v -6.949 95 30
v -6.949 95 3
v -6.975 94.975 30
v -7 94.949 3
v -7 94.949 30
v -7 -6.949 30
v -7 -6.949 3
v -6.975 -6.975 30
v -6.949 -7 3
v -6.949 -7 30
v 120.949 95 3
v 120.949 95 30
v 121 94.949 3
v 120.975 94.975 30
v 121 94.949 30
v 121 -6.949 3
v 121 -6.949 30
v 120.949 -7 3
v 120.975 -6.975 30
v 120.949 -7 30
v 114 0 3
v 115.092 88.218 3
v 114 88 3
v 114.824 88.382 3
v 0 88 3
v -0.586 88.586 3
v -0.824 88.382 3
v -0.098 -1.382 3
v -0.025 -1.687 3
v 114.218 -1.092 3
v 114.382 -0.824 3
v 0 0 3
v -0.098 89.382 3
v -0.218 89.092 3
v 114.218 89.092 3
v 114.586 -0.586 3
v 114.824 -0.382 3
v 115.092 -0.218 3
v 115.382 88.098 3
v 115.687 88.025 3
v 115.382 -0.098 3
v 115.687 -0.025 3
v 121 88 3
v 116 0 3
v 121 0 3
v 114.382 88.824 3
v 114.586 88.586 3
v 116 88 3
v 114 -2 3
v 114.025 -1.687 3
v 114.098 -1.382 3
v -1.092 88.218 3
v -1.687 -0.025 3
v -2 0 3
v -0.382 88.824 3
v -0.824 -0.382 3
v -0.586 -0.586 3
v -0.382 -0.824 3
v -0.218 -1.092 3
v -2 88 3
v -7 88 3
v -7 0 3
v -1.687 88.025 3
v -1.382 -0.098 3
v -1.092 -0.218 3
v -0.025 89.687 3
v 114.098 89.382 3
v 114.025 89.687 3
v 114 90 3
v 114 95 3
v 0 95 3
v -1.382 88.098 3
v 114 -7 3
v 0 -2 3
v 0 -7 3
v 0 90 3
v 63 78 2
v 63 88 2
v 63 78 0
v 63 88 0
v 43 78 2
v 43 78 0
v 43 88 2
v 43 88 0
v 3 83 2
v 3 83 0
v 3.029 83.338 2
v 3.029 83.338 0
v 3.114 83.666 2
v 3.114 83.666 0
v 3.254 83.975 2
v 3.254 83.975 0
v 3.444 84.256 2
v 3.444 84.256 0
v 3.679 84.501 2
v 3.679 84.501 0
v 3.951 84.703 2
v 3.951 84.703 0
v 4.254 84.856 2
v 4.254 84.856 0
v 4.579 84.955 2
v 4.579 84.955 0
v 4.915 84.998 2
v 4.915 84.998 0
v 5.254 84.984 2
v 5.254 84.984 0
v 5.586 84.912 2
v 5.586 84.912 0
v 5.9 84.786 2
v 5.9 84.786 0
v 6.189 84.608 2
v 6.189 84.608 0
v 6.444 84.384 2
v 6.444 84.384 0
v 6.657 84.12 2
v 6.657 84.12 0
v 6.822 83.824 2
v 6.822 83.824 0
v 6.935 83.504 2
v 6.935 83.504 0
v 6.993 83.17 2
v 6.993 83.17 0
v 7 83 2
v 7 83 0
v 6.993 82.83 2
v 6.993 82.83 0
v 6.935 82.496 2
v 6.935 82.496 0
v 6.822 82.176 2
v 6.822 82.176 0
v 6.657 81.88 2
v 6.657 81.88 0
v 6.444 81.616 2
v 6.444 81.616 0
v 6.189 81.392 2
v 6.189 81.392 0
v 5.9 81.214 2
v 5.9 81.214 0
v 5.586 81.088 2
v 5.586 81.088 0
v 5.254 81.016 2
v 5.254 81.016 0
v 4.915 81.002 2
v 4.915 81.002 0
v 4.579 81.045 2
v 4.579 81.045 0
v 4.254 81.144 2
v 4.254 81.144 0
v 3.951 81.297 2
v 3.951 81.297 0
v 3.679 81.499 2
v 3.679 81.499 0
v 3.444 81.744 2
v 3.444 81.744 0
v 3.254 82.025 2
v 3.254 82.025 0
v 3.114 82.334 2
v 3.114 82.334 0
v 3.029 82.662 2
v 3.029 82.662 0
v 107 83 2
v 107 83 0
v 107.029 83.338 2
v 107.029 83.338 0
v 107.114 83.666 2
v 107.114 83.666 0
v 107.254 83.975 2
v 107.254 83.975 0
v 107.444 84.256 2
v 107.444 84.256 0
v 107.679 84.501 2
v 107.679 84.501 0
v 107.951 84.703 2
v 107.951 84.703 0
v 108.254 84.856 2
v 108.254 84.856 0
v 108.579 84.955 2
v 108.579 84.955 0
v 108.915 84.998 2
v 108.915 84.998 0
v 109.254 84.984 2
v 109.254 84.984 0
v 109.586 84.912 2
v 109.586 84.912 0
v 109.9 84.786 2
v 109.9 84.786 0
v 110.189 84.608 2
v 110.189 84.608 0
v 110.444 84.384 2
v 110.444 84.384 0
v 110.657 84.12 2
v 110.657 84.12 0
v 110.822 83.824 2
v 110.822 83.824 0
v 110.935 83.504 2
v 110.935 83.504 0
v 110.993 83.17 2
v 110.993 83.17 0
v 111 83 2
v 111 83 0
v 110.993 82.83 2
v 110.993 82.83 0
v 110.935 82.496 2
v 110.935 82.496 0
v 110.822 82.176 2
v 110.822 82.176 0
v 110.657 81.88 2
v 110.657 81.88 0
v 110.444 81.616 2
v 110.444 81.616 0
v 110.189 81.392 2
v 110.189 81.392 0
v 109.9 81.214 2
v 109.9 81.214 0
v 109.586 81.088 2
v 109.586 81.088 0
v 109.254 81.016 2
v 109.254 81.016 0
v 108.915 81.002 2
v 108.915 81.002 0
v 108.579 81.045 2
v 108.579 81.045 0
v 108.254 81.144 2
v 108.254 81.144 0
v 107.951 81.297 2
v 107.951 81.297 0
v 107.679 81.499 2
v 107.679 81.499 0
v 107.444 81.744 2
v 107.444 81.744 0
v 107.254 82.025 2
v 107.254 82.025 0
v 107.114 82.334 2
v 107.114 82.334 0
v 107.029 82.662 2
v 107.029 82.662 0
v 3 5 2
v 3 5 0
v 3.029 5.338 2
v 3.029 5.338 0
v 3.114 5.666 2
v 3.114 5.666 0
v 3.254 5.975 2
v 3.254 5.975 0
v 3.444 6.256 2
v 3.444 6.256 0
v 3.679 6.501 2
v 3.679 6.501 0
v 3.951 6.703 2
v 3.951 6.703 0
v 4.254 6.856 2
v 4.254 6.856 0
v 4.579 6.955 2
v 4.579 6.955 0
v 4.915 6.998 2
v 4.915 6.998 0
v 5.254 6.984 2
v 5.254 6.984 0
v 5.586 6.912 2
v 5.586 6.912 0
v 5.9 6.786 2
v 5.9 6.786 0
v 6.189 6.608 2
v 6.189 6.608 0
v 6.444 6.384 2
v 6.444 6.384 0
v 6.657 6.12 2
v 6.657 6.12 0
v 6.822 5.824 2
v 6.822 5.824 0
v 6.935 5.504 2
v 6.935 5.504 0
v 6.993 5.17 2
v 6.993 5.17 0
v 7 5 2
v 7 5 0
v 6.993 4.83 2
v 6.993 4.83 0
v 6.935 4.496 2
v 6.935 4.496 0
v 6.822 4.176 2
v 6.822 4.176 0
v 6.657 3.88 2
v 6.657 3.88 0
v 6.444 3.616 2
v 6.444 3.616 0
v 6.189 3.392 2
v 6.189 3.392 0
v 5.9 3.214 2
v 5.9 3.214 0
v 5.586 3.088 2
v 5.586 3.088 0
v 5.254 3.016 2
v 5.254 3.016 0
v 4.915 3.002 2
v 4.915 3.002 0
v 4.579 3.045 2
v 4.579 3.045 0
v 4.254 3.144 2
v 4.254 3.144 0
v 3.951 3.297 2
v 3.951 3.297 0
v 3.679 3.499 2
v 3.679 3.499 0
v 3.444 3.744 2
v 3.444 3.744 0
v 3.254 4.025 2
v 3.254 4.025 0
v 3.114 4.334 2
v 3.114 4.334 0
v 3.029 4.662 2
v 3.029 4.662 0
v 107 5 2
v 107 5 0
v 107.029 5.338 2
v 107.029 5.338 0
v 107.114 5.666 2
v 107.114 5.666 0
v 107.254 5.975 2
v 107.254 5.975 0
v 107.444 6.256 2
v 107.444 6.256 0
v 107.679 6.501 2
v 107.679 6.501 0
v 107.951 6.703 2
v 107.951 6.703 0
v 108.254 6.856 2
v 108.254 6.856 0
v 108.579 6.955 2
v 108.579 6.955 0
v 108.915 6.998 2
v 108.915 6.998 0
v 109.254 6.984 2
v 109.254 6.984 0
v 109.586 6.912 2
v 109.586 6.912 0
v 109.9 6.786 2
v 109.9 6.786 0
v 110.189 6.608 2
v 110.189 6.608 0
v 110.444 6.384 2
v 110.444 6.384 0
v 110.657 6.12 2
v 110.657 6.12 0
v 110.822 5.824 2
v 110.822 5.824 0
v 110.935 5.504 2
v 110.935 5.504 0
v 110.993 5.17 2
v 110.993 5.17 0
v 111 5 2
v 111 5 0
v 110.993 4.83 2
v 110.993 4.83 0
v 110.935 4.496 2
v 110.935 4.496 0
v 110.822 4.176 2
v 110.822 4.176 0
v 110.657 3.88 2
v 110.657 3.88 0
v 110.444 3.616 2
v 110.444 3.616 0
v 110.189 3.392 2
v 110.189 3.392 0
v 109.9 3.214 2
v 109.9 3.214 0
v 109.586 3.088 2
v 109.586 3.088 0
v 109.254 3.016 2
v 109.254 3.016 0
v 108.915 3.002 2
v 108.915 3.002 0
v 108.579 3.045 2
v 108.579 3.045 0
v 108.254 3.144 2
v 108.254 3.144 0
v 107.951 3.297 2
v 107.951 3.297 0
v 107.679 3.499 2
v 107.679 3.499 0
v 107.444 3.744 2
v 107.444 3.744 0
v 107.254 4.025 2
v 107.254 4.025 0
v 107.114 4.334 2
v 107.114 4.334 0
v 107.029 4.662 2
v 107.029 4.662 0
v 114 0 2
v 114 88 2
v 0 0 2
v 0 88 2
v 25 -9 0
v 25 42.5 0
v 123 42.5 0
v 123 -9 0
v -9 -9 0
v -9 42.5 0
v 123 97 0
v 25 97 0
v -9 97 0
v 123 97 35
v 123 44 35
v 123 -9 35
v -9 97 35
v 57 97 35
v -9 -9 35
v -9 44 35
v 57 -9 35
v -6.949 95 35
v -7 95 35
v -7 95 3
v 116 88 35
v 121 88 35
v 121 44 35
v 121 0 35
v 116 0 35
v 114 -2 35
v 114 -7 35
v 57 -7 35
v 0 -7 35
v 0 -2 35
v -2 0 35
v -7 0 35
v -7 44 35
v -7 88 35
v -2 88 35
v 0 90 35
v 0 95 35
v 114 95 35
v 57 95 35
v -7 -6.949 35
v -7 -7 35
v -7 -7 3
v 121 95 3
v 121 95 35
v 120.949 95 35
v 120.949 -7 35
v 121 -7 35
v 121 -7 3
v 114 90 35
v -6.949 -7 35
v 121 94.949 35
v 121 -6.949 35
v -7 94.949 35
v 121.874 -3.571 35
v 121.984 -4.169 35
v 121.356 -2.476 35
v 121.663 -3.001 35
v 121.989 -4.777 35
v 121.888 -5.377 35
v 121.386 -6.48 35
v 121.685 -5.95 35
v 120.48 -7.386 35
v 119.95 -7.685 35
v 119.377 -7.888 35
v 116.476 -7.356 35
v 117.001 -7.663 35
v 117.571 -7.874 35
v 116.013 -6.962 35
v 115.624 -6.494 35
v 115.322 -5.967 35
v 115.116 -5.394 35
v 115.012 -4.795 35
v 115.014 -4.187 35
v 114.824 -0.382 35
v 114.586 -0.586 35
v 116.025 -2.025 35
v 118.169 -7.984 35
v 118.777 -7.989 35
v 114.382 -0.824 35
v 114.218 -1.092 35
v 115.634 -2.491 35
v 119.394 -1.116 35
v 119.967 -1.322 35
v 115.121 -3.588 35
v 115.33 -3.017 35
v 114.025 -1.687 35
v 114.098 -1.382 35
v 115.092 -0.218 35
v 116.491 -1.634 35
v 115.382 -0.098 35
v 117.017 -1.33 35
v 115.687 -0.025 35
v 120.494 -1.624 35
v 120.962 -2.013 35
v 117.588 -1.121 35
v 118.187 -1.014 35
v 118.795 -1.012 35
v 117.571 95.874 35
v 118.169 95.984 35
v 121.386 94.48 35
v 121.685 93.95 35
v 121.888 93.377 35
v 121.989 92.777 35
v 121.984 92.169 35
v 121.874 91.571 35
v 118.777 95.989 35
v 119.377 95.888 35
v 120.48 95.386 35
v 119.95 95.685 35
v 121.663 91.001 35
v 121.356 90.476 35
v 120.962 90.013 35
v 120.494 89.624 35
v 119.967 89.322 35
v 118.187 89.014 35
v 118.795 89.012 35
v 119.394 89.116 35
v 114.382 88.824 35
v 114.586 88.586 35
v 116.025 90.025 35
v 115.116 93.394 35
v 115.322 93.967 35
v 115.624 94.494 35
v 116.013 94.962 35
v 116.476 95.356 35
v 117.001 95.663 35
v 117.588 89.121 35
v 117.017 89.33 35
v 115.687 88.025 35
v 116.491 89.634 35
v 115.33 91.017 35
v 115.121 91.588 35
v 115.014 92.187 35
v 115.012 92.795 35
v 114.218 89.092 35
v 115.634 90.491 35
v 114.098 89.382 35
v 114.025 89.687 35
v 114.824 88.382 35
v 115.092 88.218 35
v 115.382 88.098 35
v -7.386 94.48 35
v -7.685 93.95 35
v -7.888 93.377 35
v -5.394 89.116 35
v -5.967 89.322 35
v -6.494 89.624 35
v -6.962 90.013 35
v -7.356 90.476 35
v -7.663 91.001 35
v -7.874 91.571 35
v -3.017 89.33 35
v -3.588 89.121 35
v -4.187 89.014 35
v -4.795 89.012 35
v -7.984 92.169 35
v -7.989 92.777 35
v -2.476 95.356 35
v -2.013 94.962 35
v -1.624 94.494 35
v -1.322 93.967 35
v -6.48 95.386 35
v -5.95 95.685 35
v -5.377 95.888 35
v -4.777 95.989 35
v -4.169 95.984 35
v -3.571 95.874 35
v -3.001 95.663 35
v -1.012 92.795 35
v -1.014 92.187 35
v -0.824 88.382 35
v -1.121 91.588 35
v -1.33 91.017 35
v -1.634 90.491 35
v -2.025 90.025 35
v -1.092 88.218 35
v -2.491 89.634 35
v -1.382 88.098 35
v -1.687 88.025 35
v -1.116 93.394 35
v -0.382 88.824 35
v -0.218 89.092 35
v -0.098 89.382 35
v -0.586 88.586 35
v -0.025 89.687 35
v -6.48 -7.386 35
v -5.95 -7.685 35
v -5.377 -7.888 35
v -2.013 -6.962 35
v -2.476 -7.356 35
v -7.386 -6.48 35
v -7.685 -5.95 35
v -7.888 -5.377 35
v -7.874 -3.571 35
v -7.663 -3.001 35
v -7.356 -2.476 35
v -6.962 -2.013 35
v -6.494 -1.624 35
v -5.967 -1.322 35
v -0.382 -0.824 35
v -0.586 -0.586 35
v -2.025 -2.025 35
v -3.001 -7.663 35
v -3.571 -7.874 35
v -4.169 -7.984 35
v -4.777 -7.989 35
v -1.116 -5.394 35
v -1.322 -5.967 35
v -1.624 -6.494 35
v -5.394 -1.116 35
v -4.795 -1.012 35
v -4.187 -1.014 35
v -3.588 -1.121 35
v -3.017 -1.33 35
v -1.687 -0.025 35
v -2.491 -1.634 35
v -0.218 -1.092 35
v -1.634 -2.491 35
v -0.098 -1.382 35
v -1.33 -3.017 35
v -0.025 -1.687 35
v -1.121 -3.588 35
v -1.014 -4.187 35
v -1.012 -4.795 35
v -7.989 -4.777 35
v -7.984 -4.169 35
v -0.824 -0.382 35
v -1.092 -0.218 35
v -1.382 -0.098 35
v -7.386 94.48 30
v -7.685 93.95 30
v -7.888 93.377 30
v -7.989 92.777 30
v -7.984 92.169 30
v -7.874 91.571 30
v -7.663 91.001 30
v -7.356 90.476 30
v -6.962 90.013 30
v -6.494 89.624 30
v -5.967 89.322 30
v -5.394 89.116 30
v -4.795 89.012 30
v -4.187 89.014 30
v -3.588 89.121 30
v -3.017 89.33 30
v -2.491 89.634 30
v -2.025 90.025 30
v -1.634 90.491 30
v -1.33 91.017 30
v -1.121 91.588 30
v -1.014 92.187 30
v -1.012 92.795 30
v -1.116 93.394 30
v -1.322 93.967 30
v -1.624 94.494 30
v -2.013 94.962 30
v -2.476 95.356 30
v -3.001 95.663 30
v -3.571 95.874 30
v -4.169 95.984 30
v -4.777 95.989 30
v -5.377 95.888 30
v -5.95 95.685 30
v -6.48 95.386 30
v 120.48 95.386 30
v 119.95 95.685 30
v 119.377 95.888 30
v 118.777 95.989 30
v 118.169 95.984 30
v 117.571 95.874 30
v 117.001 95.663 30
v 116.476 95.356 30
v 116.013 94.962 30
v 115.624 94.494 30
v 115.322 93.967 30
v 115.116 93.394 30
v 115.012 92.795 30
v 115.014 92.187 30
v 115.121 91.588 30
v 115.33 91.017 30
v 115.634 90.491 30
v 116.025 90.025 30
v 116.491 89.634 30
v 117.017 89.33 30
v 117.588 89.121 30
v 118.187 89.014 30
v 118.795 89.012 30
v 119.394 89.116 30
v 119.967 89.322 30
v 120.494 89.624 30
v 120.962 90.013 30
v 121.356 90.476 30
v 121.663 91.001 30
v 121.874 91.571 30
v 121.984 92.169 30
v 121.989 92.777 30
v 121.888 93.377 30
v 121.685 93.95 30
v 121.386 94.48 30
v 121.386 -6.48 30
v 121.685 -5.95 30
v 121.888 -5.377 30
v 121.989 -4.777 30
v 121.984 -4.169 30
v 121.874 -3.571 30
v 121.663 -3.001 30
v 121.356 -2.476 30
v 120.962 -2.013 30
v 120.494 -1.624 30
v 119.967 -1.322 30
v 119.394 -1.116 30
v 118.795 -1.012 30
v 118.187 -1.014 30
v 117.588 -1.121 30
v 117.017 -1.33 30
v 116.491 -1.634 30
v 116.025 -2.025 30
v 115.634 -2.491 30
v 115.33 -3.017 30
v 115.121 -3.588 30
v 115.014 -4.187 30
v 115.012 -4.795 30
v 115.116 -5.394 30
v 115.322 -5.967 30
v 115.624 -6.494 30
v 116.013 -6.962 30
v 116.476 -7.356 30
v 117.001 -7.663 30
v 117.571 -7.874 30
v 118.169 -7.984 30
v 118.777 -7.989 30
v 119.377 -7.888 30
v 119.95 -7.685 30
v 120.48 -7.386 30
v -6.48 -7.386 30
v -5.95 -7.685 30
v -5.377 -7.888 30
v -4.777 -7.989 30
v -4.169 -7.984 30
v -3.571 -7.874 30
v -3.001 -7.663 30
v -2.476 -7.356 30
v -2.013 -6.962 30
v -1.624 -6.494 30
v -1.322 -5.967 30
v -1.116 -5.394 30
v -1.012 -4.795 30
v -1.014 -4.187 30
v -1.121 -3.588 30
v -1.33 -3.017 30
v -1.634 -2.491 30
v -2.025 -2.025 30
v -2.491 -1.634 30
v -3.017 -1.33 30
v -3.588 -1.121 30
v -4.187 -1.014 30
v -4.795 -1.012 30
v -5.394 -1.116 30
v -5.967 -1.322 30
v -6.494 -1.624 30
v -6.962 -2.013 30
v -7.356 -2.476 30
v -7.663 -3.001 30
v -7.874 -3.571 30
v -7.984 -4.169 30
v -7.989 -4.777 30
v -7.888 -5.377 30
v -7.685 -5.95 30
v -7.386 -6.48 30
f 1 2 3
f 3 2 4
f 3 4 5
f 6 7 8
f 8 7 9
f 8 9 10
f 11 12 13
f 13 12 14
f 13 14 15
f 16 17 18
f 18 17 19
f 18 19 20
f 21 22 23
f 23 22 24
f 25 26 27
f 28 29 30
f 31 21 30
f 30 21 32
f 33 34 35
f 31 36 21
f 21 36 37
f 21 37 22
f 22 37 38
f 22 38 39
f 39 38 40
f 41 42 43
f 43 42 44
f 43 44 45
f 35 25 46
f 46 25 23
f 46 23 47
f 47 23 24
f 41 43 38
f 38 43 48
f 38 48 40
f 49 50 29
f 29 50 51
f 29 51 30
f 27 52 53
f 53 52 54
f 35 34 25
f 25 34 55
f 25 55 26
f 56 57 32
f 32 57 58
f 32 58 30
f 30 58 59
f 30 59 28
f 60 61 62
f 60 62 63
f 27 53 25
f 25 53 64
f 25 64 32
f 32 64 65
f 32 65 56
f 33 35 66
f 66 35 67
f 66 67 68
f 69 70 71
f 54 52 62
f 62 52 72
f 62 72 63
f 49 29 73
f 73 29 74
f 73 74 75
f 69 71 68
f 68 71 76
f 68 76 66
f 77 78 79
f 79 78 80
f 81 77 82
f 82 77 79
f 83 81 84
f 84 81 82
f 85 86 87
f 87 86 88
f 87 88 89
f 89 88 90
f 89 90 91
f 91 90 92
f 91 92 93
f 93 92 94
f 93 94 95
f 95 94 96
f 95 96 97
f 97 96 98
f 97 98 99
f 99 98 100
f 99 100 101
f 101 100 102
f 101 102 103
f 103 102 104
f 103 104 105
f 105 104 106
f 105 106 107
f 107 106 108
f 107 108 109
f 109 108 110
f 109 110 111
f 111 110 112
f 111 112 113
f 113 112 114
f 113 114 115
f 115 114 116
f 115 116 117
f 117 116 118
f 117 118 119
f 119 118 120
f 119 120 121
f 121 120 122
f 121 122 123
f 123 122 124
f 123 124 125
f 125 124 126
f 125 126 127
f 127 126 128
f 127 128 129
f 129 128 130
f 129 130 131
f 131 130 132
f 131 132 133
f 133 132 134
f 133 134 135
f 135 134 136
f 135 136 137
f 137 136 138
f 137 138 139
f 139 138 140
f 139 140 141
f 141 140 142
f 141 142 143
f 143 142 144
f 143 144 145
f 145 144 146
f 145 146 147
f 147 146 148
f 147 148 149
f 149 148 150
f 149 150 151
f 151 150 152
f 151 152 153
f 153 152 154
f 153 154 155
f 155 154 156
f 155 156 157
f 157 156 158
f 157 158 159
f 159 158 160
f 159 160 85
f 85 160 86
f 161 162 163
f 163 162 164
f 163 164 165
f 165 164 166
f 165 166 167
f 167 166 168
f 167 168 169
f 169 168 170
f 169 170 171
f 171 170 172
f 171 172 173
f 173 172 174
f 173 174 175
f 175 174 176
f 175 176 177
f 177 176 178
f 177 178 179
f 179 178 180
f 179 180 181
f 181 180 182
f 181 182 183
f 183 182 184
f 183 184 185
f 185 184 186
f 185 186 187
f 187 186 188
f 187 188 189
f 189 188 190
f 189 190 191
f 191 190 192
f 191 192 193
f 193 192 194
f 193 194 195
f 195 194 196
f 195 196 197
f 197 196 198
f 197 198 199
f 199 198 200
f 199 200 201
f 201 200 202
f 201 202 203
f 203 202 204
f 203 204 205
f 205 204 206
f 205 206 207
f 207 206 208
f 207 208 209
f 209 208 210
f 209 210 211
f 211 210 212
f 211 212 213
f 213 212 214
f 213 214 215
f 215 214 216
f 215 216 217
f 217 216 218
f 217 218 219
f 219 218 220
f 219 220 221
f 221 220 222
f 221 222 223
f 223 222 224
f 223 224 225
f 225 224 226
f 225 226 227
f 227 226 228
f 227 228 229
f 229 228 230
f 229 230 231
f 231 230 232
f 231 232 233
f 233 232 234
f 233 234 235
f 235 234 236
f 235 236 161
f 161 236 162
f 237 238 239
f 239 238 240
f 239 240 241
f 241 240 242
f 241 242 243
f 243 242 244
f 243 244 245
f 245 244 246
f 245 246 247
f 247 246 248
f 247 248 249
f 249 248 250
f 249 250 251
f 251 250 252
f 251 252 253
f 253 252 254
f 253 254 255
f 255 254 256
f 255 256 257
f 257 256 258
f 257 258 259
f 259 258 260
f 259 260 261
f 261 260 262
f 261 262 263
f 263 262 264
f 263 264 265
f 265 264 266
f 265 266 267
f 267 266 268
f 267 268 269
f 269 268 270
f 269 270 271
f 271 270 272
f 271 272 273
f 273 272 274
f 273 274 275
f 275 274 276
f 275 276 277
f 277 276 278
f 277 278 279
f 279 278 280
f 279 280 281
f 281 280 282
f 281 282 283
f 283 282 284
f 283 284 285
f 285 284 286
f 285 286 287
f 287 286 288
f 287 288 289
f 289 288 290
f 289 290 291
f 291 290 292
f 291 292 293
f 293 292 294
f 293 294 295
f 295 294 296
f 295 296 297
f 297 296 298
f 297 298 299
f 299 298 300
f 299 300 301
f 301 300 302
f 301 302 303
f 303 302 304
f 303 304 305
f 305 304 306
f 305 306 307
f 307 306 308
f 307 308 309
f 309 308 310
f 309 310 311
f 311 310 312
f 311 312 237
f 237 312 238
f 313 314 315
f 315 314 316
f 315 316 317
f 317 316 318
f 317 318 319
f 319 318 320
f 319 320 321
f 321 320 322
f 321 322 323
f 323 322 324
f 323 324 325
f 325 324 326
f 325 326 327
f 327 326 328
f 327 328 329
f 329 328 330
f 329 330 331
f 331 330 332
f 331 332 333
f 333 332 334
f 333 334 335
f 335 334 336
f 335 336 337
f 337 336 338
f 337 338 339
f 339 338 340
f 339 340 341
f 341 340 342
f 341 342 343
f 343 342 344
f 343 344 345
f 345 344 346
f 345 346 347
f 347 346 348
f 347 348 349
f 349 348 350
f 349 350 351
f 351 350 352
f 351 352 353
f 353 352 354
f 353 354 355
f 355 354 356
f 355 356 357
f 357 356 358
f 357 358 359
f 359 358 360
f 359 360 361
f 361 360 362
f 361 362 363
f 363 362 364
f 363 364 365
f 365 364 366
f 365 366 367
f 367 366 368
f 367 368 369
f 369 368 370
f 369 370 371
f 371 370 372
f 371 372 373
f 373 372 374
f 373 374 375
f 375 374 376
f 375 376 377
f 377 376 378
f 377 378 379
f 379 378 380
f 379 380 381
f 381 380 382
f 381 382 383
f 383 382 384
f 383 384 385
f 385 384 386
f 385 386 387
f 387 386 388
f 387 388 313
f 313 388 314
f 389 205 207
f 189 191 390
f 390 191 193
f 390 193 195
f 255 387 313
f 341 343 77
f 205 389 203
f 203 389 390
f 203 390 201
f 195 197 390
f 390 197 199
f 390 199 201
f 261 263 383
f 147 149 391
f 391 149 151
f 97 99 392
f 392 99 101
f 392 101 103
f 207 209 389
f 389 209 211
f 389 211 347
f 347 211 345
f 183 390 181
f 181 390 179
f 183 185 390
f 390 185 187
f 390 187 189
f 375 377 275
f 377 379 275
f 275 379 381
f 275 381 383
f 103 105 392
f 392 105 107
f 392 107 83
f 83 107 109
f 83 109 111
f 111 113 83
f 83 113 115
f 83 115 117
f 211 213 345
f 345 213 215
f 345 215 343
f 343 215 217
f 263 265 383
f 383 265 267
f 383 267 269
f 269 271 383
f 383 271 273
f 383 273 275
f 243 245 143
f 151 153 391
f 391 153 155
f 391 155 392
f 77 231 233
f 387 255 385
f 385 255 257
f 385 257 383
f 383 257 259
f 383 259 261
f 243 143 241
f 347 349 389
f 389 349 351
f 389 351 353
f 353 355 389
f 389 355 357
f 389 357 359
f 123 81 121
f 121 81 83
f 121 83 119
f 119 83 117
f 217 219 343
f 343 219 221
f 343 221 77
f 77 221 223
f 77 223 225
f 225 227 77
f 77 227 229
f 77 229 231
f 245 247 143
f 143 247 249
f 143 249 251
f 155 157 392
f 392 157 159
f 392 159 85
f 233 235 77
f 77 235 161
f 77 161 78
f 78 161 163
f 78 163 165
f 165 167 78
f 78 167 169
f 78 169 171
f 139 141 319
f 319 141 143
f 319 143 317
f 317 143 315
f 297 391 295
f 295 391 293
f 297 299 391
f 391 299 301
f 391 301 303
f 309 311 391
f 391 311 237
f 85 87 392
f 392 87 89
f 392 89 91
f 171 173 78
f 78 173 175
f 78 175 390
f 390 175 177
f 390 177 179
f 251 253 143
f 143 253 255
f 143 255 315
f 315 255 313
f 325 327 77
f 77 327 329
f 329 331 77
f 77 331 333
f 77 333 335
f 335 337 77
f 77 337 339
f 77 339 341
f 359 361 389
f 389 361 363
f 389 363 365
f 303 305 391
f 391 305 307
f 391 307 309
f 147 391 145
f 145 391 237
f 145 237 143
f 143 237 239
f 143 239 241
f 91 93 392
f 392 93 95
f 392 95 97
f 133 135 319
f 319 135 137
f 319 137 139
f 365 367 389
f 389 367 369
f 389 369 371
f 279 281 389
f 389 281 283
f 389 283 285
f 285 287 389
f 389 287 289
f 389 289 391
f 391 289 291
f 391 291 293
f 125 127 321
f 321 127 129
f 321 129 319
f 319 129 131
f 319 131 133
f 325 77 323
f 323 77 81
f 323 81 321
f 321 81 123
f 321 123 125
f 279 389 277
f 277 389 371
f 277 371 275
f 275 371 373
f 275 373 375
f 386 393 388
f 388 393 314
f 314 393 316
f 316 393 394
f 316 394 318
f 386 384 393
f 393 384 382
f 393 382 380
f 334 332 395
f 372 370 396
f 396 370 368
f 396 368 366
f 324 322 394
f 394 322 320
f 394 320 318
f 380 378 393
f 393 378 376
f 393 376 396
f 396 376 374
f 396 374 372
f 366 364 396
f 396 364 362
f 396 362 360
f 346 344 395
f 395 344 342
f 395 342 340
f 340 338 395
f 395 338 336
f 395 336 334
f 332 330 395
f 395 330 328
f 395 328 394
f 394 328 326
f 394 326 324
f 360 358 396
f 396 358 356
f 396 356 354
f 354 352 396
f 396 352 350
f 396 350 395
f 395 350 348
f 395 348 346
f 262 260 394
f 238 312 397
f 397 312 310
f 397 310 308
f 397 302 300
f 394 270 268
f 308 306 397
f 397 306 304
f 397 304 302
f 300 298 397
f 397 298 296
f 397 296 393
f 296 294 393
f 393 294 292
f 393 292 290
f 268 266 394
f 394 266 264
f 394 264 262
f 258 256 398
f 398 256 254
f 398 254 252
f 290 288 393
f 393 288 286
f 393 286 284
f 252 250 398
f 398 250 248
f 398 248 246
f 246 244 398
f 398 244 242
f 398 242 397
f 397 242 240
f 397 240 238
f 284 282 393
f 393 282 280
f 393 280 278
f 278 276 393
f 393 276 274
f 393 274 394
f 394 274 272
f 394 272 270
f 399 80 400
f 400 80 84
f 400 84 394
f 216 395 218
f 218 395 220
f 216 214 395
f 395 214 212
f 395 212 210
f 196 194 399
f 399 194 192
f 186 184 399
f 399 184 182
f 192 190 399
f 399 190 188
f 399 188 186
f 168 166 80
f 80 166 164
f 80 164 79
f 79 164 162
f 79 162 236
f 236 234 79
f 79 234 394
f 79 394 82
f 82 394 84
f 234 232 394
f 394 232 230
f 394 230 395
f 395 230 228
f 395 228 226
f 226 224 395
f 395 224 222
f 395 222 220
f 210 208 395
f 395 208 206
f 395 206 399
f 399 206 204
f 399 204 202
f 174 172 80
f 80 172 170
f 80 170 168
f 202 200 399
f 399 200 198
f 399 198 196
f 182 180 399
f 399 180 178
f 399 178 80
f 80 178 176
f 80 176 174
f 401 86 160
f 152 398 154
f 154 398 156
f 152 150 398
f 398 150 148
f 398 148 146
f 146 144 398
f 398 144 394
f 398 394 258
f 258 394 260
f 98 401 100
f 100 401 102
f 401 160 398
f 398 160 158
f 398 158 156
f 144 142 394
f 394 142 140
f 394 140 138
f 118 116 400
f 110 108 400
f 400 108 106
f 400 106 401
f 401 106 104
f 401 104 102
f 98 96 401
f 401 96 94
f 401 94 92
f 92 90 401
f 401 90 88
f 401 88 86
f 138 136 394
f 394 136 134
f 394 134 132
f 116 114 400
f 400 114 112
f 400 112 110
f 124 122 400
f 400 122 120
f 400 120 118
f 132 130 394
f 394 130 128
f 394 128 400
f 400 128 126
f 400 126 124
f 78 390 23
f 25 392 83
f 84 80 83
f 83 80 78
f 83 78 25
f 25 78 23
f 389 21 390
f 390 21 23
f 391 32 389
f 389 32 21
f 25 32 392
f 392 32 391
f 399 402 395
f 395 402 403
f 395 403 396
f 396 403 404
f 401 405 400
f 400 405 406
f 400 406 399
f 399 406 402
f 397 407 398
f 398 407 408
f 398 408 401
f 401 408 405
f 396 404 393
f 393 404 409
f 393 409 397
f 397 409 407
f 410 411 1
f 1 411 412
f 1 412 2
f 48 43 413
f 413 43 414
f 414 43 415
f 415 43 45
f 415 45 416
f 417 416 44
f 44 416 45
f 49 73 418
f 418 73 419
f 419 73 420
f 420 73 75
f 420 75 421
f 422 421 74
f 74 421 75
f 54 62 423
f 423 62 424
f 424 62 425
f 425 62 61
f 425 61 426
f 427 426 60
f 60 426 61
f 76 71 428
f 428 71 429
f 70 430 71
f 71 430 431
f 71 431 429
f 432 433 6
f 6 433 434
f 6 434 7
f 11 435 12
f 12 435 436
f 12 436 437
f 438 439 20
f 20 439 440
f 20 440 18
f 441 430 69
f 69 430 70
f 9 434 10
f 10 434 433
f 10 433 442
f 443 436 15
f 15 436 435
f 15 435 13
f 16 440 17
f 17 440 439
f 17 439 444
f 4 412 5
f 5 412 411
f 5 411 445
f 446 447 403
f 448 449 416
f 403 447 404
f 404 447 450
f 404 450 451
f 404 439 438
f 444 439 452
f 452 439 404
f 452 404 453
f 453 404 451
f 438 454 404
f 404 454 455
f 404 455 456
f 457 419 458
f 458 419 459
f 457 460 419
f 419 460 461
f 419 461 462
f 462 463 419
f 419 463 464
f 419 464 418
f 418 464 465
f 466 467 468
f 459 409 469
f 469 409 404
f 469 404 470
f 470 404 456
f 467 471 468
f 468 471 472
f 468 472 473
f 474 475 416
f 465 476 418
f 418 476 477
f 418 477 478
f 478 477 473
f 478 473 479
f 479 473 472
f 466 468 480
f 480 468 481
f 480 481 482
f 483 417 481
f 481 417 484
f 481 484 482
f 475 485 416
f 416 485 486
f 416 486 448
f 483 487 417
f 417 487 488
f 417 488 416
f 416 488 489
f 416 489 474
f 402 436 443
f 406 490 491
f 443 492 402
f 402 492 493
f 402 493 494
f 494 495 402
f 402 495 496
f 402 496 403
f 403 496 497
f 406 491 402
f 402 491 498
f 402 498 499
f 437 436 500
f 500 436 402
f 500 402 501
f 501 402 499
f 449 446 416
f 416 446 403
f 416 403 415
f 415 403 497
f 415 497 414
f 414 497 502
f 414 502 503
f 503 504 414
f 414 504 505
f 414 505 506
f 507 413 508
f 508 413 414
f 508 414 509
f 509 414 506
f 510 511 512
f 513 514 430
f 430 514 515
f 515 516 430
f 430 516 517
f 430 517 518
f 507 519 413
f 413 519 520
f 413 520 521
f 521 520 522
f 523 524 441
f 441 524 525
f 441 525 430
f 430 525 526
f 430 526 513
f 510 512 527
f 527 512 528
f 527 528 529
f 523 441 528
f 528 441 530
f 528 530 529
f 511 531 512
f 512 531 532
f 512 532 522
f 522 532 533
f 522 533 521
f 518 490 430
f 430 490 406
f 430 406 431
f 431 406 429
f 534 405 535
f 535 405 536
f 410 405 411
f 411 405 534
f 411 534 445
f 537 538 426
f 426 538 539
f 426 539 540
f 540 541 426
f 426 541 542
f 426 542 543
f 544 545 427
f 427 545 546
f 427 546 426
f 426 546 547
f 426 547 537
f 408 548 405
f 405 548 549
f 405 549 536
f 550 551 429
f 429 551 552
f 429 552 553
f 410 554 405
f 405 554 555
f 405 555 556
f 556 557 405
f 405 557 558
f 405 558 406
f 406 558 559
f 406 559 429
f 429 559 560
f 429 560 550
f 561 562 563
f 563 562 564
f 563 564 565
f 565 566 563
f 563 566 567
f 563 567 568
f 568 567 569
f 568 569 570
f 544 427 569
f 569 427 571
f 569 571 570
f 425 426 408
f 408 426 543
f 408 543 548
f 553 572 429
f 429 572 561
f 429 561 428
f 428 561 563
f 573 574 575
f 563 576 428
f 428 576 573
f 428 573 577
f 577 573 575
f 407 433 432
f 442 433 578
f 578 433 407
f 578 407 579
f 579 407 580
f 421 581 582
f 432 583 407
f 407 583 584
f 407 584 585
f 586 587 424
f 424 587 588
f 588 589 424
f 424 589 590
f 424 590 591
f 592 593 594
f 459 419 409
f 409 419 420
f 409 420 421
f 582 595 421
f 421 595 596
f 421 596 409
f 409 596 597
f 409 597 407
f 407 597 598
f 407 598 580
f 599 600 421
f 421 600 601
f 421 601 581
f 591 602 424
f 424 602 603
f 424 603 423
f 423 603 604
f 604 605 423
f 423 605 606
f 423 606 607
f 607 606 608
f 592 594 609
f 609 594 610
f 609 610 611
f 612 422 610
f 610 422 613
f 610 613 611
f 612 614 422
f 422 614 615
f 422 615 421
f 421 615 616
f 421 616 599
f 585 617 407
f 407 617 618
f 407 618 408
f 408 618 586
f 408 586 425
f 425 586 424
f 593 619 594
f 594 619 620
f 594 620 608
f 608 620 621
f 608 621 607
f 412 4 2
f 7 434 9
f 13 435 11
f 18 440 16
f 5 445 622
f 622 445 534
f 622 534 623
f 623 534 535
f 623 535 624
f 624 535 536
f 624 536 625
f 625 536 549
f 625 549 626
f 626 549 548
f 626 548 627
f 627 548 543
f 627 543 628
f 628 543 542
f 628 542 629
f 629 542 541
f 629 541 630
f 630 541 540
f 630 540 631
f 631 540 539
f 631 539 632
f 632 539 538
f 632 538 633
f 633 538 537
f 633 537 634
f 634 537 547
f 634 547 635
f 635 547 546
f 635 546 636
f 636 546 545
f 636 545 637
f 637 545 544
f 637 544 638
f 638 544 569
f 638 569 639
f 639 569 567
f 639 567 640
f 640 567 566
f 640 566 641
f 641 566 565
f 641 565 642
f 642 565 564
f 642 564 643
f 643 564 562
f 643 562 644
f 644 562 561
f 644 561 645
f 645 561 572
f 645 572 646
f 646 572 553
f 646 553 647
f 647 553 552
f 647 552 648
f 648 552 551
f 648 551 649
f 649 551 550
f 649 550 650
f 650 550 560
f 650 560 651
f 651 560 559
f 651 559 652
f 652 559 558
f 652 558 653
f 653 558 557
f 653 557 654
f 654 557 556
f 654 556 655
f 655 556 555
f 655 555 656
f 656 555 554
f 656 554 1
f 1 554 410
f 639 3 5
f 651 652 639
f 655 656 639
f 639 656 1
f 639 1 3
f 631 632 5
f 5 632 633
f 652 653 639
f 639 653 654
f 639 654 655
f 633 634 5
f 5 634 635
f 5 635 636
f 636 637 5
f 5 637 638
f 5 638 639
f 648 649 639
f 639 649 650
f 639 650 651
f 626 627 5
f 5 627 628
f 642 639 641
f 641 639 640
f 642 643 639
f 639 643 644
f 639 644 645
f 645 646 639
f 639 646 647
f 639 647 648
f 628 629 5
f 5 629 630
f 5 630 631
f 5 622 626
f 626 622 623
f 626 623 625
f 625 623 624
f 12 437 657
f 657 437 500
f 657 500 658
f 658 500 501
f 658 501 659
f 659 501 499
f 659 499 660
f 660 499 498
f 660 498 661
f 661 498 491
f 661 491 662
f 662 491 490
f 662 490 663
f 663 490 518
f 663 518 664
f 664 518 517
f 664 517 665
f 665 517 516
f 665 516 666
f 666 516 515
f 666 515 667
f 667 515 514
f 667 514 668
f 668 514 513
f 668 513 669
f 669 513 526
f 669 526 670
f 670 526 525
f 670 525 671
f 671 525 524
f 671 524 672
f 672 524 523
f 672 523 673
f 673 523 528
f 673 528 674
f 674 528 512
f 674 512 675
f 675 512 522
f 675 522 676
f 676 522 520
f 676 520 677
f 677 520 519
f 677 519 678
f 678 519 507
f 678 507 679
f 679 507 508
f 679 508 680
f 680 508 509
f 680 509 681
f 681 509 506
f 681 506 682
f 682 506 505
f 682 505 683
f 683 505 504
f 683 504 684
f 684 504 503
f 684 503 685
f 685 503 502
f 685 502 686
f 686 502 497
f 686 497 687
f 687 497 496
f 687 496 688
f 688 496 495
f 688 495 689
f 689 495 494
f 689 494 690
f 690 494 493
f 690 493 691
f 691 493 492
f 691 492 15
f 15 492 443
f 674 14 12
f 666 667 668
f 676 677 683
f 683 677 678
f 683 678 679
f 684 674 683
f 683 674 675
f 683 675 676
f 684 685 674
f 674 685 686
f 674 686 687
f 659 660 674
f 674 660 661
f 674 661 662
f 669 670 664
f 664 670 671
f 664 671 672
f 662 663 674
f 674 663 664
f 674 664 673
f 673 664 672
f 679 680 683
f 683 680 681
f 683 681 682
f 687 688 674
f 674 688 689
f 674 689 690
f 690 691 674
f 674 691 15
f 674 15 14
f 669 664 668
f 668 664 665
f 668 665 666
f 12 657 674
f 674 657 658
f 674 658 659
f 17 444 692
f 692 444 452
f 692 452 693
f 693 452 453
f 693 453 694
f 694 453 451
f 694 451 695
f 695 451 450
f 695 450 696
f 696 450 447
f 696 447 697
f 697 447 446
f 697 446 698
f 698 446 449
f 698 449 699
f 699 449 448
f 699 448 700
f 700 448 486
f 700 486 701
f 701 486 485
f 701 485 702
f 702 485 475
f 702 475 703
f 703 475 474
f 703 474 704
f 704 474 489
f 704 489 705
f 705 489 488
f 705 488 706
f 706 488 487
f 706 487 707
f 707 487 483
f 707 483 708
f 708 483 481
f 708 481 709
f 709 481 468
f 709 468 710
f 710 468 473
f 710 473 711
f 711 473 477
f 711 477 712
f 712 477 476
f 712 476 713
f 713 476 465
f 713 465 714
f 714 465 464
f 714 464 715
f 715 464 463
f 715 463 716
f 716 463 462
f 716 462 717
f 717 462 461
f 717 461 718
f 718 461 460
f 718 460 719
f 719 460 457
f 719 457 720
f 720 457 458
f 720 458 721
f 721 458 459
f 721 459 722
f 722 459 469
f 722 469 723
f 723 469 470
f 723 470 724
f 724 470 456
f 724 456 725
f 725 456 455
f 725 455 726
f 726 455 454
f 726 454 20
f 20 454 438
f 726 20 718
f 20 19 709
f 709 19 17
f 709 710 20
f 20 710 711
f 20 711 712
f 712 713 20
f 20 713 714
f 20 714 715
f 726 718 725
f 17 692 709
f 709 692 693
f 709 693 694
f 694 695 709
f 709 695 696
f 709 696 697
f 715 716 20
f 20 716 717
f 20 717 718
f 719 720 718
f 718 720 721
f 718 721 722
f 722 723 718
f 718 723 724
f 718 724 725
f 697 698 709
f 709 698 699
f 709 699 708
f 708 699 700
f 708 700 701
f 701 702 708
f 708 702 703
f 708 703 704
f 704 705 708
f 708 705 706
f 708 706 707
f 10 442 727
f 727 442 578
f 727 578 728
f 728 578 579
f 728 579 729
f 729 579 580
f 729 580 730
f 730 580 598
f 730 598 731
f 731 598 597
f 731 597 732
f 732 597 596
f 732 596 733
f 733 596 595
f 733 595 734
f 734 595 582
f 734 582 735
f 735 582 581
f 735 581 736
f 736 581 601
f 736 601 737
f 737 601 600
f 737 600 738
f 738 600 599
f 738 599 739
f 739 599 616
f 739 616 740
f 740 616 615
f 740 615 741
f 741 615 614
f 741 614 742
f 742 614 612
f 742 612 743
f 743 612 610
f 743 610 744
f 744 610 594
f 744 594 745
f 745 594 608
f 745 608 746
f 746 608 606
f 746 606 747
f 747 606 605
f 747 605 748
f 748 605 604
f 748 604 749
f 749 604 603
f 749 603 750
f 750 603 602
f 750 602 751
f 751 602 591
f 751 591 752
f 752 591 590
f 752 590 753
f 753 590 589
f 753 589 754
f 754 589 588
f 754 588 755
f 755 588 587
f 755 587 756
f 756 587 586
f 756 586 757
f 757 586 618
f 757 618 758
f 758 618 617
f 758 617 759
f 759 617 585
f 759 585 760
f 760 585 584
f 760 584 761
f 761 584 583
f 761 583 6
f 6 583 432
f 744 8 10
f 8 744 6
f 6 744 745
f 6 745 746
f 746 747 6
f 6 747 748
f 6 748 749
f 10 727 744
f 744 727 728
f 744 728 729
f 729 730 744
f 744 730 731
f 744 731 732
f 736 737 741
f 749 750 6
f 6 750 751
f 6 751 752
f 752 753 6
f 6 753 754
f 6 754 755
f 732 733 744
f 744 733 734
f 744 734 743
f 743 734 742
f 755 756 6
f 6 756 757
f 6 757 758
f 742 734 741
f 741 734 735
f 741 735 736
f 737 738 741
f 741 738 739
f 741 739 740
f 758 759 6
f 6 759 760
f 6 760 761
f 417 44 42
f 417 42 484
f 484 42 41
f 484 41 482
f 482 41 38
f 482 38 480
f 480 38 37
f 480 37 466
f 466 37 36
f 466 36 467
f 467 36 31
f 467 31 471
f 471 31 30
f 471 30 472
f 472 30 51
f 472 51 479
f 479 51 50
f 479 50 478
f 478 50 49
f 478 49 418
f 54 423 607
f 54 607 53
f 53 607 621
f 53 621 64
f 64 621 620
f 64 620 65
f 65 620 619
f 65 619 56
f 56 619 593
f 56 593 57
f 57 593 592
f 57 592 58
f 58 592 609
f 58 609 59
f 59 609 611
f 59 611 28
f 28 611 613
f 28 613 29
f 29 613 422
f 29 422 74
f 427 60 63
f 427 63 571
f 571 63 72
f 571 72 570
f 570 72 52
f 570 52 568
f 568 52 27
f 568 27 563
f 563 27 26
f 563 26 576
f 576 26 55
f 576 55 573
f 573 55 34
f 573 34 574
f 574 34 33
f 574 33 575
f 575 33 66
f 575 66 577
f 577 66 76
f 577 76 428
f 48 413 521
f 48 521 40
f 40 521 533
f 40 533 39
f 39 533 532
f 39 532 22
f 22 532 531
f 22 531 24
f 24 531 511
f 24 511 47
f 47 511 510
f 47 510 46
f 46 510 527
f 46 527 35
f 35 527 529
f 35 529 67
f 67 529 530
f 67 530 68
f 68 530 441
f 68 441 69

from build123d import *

# Parameters (mm, degrees)
ESQUISSE1_R             = 2
BOSS_EXTRU_1_DEPTH      = 2
ESQUISSE1_3_W           = 132
ESQUISSE1_3_H           = 106
ESQUISSE1_3_W_2         = 114
ESQUISSE1_3_H_2         = 88
BOSS_EXTRU_2_DEPTH      = 3
ESQUISSE2_W             = 132
ESQUISSE2_H             = 106
BOSS_EXTRU_4_DEPTH      = 32
ENL_V_START             = -5
ESQUISSE3_R             = 3.5
ENL_V_MAT_EXTRU_1_DEPTH = 5
CONG_1_R                = 2


with BuildPart() as part:
    # Esquisse1 → Boss.-Extru.1 (new body)
    with BuildSketch(Plane.XY):
        Polygon((63, 78), (43, 78), (43, 84.300950417), (43, 88), (0, 88), (0, 0), (114, 0), (114, 88), (63, 88), (63, 84.300950417), align=None)
        with Locations((5, 5)):
            Circle(ESQUISSE1_R, mode=Mode.SUBTRACT)
        with Locations((109, 5)):
            Circle(ESQUISSE1_R, mode=Mode.SUBTRACT)
        with Locations((5, 83)):
            Circle(ESQUISSE1_R, mode=Mode.SUBTRACT)
        with Locations((109, 83)):
            Circle(ESQUISSE1_R, mode=Mode.SUBTRACT)
    extrude(amount=BOSS_EXTRU_1_DEPTH)

    # Esquisse1<3> → Boss.-Extru.2 (add)
    with BuildSketch(Plane.XY):
        with Locations((57, 44)):
            Rectangle(ESQUISSE1_3_W, ESQUISSE1_3_H)
        with Locations((57, 44)):
            Rectangle(ESQUISSE1_3_W_2, ESQUISSE1_3_H_2, mode=Mode.SUBTRACT)
    extrude(amount=BOSS_EXTRU_2_DEPTH)

    # Esquisse2 → Boss.-Extru.4 (add)
    with BuildSketch(Plane.XY.offset(3)):
        with Locations((57, 44)):
            Rectangle(ESQUISSE2_W, ESQUISSE2_H)
        with BuildLine():
            Line((-7, -7), (-7, -6.949489743))
            ThreePointArc((-7, -6.949489743), (-6.974873734, -6.974873734), (-6.949489743, -7))
            Line((-6.949489743, -7), (-7, -7))
        make_face(mode=Mode.SUBTRACT)
        Polygon((114, -7), (0, -7), (0, 0), (-7, 0), (-7, 88), (0, 88), (0, 95), (114, 95), (114, 88), (121, 88), (121, 0), (114, 0), align=None, mode=Mode.SUBTRACT)
        with BuildLine():
            ThreePointArc((120.949489743, -7), (120.974873734, -6.974873734), (121, -6.949489743))
            Line((121, -6.949489743), (121, -7))
            Line((121, -7), (120.949489743, -7))
        make_face(mode=Mode.SUBTRACT)
        with BuildLine():
            Line((-7, 95), (-6.949489743, 95))
            ThreePointArc((-6.949489743, 95), (-6.974873734, 94.974873734), (-7, 94.949489743))
            Line((-7, 94.949489743), (-7, 95))
        make_face(mode=Mode.SUBTRACT)
        with BuildLine():
            ThreePointArc((121, 94.949489743), (120.974873734, 94.974873734), (120.949489743, 95))
            Line((120.949489743, 95), (121, 95))
            Line((121, 95), (121, 94.949489743))
        make_face(mode=Mode.SUBTRACT)
    extrude(amount=BOSS_EXTRU_4_DEPTH)

    # Esquisse3 → Enlèv. mat.-Extru.1 (cut)
    with BuildSketch(Plane.XY.offset(35).offset(ENL_V_START)):
        with Locations((-4.5, 92.5)):
            Circle(ESQUISSE3_R)
        with Locations((118.5, 92.5)):
            Circle(ESQUISSE3_R)
        with Locations((118.5, -4.5)):
            Circle(ESQUISSE3_R)
        with Locations((-4.5, -4.5)):
            Circle(ESQUISSE3_R)
    extrude(amount=ENL_V_MAT_EXTRU_1_DEPTH, mode=Mode.SUBTRACT)

    # Congé1
    # the kernel refuses this fillet: 2 mm, written as the material it takes off along each edge
    with BuildSketch(Plane(origin=(114, 88, 3), x_dir=(0, 1, 0), z_dir=(0, 0, 1)), Plane(origin=(114, 0, 3), x_dir=(1, 0, 0), z_dir=(0, 0, 1))) as cong_1_piece_1:
        with BuildLine():
            CenterArc((CONG_1_R, -CONG_1_R), CONG_1_R, 90, 90)
            Line((0, -CONG_1_R), (0, 0))
            Line((0, 0), (CONG_1_R, 0))
        make_face()
    extrude(amount=37, mode=Mode.SUBTRACT)
    with BuildSketch(Plane(origin=(0, 0, 3), x_dir=(-1, 0, 0), z_dir=(0, 0, 1)), Plane(origin=(0, 88, 3), x_dir=(0, 1, 0), z_dir=(0, 0, 1))) as cong_1_piece_2:
        with BuildLine():
            CenterArc((CONG_1_R, CONG_1_R), CONG_1_R, 180, 90)
            Line((0, CONG_1_R), (0, 0))
            Line((0, 0), (CONG_1_R, 0))
        make_face()
    extrude(amount=37, mode=Mode.SUBTRACT)


solid = part.part
